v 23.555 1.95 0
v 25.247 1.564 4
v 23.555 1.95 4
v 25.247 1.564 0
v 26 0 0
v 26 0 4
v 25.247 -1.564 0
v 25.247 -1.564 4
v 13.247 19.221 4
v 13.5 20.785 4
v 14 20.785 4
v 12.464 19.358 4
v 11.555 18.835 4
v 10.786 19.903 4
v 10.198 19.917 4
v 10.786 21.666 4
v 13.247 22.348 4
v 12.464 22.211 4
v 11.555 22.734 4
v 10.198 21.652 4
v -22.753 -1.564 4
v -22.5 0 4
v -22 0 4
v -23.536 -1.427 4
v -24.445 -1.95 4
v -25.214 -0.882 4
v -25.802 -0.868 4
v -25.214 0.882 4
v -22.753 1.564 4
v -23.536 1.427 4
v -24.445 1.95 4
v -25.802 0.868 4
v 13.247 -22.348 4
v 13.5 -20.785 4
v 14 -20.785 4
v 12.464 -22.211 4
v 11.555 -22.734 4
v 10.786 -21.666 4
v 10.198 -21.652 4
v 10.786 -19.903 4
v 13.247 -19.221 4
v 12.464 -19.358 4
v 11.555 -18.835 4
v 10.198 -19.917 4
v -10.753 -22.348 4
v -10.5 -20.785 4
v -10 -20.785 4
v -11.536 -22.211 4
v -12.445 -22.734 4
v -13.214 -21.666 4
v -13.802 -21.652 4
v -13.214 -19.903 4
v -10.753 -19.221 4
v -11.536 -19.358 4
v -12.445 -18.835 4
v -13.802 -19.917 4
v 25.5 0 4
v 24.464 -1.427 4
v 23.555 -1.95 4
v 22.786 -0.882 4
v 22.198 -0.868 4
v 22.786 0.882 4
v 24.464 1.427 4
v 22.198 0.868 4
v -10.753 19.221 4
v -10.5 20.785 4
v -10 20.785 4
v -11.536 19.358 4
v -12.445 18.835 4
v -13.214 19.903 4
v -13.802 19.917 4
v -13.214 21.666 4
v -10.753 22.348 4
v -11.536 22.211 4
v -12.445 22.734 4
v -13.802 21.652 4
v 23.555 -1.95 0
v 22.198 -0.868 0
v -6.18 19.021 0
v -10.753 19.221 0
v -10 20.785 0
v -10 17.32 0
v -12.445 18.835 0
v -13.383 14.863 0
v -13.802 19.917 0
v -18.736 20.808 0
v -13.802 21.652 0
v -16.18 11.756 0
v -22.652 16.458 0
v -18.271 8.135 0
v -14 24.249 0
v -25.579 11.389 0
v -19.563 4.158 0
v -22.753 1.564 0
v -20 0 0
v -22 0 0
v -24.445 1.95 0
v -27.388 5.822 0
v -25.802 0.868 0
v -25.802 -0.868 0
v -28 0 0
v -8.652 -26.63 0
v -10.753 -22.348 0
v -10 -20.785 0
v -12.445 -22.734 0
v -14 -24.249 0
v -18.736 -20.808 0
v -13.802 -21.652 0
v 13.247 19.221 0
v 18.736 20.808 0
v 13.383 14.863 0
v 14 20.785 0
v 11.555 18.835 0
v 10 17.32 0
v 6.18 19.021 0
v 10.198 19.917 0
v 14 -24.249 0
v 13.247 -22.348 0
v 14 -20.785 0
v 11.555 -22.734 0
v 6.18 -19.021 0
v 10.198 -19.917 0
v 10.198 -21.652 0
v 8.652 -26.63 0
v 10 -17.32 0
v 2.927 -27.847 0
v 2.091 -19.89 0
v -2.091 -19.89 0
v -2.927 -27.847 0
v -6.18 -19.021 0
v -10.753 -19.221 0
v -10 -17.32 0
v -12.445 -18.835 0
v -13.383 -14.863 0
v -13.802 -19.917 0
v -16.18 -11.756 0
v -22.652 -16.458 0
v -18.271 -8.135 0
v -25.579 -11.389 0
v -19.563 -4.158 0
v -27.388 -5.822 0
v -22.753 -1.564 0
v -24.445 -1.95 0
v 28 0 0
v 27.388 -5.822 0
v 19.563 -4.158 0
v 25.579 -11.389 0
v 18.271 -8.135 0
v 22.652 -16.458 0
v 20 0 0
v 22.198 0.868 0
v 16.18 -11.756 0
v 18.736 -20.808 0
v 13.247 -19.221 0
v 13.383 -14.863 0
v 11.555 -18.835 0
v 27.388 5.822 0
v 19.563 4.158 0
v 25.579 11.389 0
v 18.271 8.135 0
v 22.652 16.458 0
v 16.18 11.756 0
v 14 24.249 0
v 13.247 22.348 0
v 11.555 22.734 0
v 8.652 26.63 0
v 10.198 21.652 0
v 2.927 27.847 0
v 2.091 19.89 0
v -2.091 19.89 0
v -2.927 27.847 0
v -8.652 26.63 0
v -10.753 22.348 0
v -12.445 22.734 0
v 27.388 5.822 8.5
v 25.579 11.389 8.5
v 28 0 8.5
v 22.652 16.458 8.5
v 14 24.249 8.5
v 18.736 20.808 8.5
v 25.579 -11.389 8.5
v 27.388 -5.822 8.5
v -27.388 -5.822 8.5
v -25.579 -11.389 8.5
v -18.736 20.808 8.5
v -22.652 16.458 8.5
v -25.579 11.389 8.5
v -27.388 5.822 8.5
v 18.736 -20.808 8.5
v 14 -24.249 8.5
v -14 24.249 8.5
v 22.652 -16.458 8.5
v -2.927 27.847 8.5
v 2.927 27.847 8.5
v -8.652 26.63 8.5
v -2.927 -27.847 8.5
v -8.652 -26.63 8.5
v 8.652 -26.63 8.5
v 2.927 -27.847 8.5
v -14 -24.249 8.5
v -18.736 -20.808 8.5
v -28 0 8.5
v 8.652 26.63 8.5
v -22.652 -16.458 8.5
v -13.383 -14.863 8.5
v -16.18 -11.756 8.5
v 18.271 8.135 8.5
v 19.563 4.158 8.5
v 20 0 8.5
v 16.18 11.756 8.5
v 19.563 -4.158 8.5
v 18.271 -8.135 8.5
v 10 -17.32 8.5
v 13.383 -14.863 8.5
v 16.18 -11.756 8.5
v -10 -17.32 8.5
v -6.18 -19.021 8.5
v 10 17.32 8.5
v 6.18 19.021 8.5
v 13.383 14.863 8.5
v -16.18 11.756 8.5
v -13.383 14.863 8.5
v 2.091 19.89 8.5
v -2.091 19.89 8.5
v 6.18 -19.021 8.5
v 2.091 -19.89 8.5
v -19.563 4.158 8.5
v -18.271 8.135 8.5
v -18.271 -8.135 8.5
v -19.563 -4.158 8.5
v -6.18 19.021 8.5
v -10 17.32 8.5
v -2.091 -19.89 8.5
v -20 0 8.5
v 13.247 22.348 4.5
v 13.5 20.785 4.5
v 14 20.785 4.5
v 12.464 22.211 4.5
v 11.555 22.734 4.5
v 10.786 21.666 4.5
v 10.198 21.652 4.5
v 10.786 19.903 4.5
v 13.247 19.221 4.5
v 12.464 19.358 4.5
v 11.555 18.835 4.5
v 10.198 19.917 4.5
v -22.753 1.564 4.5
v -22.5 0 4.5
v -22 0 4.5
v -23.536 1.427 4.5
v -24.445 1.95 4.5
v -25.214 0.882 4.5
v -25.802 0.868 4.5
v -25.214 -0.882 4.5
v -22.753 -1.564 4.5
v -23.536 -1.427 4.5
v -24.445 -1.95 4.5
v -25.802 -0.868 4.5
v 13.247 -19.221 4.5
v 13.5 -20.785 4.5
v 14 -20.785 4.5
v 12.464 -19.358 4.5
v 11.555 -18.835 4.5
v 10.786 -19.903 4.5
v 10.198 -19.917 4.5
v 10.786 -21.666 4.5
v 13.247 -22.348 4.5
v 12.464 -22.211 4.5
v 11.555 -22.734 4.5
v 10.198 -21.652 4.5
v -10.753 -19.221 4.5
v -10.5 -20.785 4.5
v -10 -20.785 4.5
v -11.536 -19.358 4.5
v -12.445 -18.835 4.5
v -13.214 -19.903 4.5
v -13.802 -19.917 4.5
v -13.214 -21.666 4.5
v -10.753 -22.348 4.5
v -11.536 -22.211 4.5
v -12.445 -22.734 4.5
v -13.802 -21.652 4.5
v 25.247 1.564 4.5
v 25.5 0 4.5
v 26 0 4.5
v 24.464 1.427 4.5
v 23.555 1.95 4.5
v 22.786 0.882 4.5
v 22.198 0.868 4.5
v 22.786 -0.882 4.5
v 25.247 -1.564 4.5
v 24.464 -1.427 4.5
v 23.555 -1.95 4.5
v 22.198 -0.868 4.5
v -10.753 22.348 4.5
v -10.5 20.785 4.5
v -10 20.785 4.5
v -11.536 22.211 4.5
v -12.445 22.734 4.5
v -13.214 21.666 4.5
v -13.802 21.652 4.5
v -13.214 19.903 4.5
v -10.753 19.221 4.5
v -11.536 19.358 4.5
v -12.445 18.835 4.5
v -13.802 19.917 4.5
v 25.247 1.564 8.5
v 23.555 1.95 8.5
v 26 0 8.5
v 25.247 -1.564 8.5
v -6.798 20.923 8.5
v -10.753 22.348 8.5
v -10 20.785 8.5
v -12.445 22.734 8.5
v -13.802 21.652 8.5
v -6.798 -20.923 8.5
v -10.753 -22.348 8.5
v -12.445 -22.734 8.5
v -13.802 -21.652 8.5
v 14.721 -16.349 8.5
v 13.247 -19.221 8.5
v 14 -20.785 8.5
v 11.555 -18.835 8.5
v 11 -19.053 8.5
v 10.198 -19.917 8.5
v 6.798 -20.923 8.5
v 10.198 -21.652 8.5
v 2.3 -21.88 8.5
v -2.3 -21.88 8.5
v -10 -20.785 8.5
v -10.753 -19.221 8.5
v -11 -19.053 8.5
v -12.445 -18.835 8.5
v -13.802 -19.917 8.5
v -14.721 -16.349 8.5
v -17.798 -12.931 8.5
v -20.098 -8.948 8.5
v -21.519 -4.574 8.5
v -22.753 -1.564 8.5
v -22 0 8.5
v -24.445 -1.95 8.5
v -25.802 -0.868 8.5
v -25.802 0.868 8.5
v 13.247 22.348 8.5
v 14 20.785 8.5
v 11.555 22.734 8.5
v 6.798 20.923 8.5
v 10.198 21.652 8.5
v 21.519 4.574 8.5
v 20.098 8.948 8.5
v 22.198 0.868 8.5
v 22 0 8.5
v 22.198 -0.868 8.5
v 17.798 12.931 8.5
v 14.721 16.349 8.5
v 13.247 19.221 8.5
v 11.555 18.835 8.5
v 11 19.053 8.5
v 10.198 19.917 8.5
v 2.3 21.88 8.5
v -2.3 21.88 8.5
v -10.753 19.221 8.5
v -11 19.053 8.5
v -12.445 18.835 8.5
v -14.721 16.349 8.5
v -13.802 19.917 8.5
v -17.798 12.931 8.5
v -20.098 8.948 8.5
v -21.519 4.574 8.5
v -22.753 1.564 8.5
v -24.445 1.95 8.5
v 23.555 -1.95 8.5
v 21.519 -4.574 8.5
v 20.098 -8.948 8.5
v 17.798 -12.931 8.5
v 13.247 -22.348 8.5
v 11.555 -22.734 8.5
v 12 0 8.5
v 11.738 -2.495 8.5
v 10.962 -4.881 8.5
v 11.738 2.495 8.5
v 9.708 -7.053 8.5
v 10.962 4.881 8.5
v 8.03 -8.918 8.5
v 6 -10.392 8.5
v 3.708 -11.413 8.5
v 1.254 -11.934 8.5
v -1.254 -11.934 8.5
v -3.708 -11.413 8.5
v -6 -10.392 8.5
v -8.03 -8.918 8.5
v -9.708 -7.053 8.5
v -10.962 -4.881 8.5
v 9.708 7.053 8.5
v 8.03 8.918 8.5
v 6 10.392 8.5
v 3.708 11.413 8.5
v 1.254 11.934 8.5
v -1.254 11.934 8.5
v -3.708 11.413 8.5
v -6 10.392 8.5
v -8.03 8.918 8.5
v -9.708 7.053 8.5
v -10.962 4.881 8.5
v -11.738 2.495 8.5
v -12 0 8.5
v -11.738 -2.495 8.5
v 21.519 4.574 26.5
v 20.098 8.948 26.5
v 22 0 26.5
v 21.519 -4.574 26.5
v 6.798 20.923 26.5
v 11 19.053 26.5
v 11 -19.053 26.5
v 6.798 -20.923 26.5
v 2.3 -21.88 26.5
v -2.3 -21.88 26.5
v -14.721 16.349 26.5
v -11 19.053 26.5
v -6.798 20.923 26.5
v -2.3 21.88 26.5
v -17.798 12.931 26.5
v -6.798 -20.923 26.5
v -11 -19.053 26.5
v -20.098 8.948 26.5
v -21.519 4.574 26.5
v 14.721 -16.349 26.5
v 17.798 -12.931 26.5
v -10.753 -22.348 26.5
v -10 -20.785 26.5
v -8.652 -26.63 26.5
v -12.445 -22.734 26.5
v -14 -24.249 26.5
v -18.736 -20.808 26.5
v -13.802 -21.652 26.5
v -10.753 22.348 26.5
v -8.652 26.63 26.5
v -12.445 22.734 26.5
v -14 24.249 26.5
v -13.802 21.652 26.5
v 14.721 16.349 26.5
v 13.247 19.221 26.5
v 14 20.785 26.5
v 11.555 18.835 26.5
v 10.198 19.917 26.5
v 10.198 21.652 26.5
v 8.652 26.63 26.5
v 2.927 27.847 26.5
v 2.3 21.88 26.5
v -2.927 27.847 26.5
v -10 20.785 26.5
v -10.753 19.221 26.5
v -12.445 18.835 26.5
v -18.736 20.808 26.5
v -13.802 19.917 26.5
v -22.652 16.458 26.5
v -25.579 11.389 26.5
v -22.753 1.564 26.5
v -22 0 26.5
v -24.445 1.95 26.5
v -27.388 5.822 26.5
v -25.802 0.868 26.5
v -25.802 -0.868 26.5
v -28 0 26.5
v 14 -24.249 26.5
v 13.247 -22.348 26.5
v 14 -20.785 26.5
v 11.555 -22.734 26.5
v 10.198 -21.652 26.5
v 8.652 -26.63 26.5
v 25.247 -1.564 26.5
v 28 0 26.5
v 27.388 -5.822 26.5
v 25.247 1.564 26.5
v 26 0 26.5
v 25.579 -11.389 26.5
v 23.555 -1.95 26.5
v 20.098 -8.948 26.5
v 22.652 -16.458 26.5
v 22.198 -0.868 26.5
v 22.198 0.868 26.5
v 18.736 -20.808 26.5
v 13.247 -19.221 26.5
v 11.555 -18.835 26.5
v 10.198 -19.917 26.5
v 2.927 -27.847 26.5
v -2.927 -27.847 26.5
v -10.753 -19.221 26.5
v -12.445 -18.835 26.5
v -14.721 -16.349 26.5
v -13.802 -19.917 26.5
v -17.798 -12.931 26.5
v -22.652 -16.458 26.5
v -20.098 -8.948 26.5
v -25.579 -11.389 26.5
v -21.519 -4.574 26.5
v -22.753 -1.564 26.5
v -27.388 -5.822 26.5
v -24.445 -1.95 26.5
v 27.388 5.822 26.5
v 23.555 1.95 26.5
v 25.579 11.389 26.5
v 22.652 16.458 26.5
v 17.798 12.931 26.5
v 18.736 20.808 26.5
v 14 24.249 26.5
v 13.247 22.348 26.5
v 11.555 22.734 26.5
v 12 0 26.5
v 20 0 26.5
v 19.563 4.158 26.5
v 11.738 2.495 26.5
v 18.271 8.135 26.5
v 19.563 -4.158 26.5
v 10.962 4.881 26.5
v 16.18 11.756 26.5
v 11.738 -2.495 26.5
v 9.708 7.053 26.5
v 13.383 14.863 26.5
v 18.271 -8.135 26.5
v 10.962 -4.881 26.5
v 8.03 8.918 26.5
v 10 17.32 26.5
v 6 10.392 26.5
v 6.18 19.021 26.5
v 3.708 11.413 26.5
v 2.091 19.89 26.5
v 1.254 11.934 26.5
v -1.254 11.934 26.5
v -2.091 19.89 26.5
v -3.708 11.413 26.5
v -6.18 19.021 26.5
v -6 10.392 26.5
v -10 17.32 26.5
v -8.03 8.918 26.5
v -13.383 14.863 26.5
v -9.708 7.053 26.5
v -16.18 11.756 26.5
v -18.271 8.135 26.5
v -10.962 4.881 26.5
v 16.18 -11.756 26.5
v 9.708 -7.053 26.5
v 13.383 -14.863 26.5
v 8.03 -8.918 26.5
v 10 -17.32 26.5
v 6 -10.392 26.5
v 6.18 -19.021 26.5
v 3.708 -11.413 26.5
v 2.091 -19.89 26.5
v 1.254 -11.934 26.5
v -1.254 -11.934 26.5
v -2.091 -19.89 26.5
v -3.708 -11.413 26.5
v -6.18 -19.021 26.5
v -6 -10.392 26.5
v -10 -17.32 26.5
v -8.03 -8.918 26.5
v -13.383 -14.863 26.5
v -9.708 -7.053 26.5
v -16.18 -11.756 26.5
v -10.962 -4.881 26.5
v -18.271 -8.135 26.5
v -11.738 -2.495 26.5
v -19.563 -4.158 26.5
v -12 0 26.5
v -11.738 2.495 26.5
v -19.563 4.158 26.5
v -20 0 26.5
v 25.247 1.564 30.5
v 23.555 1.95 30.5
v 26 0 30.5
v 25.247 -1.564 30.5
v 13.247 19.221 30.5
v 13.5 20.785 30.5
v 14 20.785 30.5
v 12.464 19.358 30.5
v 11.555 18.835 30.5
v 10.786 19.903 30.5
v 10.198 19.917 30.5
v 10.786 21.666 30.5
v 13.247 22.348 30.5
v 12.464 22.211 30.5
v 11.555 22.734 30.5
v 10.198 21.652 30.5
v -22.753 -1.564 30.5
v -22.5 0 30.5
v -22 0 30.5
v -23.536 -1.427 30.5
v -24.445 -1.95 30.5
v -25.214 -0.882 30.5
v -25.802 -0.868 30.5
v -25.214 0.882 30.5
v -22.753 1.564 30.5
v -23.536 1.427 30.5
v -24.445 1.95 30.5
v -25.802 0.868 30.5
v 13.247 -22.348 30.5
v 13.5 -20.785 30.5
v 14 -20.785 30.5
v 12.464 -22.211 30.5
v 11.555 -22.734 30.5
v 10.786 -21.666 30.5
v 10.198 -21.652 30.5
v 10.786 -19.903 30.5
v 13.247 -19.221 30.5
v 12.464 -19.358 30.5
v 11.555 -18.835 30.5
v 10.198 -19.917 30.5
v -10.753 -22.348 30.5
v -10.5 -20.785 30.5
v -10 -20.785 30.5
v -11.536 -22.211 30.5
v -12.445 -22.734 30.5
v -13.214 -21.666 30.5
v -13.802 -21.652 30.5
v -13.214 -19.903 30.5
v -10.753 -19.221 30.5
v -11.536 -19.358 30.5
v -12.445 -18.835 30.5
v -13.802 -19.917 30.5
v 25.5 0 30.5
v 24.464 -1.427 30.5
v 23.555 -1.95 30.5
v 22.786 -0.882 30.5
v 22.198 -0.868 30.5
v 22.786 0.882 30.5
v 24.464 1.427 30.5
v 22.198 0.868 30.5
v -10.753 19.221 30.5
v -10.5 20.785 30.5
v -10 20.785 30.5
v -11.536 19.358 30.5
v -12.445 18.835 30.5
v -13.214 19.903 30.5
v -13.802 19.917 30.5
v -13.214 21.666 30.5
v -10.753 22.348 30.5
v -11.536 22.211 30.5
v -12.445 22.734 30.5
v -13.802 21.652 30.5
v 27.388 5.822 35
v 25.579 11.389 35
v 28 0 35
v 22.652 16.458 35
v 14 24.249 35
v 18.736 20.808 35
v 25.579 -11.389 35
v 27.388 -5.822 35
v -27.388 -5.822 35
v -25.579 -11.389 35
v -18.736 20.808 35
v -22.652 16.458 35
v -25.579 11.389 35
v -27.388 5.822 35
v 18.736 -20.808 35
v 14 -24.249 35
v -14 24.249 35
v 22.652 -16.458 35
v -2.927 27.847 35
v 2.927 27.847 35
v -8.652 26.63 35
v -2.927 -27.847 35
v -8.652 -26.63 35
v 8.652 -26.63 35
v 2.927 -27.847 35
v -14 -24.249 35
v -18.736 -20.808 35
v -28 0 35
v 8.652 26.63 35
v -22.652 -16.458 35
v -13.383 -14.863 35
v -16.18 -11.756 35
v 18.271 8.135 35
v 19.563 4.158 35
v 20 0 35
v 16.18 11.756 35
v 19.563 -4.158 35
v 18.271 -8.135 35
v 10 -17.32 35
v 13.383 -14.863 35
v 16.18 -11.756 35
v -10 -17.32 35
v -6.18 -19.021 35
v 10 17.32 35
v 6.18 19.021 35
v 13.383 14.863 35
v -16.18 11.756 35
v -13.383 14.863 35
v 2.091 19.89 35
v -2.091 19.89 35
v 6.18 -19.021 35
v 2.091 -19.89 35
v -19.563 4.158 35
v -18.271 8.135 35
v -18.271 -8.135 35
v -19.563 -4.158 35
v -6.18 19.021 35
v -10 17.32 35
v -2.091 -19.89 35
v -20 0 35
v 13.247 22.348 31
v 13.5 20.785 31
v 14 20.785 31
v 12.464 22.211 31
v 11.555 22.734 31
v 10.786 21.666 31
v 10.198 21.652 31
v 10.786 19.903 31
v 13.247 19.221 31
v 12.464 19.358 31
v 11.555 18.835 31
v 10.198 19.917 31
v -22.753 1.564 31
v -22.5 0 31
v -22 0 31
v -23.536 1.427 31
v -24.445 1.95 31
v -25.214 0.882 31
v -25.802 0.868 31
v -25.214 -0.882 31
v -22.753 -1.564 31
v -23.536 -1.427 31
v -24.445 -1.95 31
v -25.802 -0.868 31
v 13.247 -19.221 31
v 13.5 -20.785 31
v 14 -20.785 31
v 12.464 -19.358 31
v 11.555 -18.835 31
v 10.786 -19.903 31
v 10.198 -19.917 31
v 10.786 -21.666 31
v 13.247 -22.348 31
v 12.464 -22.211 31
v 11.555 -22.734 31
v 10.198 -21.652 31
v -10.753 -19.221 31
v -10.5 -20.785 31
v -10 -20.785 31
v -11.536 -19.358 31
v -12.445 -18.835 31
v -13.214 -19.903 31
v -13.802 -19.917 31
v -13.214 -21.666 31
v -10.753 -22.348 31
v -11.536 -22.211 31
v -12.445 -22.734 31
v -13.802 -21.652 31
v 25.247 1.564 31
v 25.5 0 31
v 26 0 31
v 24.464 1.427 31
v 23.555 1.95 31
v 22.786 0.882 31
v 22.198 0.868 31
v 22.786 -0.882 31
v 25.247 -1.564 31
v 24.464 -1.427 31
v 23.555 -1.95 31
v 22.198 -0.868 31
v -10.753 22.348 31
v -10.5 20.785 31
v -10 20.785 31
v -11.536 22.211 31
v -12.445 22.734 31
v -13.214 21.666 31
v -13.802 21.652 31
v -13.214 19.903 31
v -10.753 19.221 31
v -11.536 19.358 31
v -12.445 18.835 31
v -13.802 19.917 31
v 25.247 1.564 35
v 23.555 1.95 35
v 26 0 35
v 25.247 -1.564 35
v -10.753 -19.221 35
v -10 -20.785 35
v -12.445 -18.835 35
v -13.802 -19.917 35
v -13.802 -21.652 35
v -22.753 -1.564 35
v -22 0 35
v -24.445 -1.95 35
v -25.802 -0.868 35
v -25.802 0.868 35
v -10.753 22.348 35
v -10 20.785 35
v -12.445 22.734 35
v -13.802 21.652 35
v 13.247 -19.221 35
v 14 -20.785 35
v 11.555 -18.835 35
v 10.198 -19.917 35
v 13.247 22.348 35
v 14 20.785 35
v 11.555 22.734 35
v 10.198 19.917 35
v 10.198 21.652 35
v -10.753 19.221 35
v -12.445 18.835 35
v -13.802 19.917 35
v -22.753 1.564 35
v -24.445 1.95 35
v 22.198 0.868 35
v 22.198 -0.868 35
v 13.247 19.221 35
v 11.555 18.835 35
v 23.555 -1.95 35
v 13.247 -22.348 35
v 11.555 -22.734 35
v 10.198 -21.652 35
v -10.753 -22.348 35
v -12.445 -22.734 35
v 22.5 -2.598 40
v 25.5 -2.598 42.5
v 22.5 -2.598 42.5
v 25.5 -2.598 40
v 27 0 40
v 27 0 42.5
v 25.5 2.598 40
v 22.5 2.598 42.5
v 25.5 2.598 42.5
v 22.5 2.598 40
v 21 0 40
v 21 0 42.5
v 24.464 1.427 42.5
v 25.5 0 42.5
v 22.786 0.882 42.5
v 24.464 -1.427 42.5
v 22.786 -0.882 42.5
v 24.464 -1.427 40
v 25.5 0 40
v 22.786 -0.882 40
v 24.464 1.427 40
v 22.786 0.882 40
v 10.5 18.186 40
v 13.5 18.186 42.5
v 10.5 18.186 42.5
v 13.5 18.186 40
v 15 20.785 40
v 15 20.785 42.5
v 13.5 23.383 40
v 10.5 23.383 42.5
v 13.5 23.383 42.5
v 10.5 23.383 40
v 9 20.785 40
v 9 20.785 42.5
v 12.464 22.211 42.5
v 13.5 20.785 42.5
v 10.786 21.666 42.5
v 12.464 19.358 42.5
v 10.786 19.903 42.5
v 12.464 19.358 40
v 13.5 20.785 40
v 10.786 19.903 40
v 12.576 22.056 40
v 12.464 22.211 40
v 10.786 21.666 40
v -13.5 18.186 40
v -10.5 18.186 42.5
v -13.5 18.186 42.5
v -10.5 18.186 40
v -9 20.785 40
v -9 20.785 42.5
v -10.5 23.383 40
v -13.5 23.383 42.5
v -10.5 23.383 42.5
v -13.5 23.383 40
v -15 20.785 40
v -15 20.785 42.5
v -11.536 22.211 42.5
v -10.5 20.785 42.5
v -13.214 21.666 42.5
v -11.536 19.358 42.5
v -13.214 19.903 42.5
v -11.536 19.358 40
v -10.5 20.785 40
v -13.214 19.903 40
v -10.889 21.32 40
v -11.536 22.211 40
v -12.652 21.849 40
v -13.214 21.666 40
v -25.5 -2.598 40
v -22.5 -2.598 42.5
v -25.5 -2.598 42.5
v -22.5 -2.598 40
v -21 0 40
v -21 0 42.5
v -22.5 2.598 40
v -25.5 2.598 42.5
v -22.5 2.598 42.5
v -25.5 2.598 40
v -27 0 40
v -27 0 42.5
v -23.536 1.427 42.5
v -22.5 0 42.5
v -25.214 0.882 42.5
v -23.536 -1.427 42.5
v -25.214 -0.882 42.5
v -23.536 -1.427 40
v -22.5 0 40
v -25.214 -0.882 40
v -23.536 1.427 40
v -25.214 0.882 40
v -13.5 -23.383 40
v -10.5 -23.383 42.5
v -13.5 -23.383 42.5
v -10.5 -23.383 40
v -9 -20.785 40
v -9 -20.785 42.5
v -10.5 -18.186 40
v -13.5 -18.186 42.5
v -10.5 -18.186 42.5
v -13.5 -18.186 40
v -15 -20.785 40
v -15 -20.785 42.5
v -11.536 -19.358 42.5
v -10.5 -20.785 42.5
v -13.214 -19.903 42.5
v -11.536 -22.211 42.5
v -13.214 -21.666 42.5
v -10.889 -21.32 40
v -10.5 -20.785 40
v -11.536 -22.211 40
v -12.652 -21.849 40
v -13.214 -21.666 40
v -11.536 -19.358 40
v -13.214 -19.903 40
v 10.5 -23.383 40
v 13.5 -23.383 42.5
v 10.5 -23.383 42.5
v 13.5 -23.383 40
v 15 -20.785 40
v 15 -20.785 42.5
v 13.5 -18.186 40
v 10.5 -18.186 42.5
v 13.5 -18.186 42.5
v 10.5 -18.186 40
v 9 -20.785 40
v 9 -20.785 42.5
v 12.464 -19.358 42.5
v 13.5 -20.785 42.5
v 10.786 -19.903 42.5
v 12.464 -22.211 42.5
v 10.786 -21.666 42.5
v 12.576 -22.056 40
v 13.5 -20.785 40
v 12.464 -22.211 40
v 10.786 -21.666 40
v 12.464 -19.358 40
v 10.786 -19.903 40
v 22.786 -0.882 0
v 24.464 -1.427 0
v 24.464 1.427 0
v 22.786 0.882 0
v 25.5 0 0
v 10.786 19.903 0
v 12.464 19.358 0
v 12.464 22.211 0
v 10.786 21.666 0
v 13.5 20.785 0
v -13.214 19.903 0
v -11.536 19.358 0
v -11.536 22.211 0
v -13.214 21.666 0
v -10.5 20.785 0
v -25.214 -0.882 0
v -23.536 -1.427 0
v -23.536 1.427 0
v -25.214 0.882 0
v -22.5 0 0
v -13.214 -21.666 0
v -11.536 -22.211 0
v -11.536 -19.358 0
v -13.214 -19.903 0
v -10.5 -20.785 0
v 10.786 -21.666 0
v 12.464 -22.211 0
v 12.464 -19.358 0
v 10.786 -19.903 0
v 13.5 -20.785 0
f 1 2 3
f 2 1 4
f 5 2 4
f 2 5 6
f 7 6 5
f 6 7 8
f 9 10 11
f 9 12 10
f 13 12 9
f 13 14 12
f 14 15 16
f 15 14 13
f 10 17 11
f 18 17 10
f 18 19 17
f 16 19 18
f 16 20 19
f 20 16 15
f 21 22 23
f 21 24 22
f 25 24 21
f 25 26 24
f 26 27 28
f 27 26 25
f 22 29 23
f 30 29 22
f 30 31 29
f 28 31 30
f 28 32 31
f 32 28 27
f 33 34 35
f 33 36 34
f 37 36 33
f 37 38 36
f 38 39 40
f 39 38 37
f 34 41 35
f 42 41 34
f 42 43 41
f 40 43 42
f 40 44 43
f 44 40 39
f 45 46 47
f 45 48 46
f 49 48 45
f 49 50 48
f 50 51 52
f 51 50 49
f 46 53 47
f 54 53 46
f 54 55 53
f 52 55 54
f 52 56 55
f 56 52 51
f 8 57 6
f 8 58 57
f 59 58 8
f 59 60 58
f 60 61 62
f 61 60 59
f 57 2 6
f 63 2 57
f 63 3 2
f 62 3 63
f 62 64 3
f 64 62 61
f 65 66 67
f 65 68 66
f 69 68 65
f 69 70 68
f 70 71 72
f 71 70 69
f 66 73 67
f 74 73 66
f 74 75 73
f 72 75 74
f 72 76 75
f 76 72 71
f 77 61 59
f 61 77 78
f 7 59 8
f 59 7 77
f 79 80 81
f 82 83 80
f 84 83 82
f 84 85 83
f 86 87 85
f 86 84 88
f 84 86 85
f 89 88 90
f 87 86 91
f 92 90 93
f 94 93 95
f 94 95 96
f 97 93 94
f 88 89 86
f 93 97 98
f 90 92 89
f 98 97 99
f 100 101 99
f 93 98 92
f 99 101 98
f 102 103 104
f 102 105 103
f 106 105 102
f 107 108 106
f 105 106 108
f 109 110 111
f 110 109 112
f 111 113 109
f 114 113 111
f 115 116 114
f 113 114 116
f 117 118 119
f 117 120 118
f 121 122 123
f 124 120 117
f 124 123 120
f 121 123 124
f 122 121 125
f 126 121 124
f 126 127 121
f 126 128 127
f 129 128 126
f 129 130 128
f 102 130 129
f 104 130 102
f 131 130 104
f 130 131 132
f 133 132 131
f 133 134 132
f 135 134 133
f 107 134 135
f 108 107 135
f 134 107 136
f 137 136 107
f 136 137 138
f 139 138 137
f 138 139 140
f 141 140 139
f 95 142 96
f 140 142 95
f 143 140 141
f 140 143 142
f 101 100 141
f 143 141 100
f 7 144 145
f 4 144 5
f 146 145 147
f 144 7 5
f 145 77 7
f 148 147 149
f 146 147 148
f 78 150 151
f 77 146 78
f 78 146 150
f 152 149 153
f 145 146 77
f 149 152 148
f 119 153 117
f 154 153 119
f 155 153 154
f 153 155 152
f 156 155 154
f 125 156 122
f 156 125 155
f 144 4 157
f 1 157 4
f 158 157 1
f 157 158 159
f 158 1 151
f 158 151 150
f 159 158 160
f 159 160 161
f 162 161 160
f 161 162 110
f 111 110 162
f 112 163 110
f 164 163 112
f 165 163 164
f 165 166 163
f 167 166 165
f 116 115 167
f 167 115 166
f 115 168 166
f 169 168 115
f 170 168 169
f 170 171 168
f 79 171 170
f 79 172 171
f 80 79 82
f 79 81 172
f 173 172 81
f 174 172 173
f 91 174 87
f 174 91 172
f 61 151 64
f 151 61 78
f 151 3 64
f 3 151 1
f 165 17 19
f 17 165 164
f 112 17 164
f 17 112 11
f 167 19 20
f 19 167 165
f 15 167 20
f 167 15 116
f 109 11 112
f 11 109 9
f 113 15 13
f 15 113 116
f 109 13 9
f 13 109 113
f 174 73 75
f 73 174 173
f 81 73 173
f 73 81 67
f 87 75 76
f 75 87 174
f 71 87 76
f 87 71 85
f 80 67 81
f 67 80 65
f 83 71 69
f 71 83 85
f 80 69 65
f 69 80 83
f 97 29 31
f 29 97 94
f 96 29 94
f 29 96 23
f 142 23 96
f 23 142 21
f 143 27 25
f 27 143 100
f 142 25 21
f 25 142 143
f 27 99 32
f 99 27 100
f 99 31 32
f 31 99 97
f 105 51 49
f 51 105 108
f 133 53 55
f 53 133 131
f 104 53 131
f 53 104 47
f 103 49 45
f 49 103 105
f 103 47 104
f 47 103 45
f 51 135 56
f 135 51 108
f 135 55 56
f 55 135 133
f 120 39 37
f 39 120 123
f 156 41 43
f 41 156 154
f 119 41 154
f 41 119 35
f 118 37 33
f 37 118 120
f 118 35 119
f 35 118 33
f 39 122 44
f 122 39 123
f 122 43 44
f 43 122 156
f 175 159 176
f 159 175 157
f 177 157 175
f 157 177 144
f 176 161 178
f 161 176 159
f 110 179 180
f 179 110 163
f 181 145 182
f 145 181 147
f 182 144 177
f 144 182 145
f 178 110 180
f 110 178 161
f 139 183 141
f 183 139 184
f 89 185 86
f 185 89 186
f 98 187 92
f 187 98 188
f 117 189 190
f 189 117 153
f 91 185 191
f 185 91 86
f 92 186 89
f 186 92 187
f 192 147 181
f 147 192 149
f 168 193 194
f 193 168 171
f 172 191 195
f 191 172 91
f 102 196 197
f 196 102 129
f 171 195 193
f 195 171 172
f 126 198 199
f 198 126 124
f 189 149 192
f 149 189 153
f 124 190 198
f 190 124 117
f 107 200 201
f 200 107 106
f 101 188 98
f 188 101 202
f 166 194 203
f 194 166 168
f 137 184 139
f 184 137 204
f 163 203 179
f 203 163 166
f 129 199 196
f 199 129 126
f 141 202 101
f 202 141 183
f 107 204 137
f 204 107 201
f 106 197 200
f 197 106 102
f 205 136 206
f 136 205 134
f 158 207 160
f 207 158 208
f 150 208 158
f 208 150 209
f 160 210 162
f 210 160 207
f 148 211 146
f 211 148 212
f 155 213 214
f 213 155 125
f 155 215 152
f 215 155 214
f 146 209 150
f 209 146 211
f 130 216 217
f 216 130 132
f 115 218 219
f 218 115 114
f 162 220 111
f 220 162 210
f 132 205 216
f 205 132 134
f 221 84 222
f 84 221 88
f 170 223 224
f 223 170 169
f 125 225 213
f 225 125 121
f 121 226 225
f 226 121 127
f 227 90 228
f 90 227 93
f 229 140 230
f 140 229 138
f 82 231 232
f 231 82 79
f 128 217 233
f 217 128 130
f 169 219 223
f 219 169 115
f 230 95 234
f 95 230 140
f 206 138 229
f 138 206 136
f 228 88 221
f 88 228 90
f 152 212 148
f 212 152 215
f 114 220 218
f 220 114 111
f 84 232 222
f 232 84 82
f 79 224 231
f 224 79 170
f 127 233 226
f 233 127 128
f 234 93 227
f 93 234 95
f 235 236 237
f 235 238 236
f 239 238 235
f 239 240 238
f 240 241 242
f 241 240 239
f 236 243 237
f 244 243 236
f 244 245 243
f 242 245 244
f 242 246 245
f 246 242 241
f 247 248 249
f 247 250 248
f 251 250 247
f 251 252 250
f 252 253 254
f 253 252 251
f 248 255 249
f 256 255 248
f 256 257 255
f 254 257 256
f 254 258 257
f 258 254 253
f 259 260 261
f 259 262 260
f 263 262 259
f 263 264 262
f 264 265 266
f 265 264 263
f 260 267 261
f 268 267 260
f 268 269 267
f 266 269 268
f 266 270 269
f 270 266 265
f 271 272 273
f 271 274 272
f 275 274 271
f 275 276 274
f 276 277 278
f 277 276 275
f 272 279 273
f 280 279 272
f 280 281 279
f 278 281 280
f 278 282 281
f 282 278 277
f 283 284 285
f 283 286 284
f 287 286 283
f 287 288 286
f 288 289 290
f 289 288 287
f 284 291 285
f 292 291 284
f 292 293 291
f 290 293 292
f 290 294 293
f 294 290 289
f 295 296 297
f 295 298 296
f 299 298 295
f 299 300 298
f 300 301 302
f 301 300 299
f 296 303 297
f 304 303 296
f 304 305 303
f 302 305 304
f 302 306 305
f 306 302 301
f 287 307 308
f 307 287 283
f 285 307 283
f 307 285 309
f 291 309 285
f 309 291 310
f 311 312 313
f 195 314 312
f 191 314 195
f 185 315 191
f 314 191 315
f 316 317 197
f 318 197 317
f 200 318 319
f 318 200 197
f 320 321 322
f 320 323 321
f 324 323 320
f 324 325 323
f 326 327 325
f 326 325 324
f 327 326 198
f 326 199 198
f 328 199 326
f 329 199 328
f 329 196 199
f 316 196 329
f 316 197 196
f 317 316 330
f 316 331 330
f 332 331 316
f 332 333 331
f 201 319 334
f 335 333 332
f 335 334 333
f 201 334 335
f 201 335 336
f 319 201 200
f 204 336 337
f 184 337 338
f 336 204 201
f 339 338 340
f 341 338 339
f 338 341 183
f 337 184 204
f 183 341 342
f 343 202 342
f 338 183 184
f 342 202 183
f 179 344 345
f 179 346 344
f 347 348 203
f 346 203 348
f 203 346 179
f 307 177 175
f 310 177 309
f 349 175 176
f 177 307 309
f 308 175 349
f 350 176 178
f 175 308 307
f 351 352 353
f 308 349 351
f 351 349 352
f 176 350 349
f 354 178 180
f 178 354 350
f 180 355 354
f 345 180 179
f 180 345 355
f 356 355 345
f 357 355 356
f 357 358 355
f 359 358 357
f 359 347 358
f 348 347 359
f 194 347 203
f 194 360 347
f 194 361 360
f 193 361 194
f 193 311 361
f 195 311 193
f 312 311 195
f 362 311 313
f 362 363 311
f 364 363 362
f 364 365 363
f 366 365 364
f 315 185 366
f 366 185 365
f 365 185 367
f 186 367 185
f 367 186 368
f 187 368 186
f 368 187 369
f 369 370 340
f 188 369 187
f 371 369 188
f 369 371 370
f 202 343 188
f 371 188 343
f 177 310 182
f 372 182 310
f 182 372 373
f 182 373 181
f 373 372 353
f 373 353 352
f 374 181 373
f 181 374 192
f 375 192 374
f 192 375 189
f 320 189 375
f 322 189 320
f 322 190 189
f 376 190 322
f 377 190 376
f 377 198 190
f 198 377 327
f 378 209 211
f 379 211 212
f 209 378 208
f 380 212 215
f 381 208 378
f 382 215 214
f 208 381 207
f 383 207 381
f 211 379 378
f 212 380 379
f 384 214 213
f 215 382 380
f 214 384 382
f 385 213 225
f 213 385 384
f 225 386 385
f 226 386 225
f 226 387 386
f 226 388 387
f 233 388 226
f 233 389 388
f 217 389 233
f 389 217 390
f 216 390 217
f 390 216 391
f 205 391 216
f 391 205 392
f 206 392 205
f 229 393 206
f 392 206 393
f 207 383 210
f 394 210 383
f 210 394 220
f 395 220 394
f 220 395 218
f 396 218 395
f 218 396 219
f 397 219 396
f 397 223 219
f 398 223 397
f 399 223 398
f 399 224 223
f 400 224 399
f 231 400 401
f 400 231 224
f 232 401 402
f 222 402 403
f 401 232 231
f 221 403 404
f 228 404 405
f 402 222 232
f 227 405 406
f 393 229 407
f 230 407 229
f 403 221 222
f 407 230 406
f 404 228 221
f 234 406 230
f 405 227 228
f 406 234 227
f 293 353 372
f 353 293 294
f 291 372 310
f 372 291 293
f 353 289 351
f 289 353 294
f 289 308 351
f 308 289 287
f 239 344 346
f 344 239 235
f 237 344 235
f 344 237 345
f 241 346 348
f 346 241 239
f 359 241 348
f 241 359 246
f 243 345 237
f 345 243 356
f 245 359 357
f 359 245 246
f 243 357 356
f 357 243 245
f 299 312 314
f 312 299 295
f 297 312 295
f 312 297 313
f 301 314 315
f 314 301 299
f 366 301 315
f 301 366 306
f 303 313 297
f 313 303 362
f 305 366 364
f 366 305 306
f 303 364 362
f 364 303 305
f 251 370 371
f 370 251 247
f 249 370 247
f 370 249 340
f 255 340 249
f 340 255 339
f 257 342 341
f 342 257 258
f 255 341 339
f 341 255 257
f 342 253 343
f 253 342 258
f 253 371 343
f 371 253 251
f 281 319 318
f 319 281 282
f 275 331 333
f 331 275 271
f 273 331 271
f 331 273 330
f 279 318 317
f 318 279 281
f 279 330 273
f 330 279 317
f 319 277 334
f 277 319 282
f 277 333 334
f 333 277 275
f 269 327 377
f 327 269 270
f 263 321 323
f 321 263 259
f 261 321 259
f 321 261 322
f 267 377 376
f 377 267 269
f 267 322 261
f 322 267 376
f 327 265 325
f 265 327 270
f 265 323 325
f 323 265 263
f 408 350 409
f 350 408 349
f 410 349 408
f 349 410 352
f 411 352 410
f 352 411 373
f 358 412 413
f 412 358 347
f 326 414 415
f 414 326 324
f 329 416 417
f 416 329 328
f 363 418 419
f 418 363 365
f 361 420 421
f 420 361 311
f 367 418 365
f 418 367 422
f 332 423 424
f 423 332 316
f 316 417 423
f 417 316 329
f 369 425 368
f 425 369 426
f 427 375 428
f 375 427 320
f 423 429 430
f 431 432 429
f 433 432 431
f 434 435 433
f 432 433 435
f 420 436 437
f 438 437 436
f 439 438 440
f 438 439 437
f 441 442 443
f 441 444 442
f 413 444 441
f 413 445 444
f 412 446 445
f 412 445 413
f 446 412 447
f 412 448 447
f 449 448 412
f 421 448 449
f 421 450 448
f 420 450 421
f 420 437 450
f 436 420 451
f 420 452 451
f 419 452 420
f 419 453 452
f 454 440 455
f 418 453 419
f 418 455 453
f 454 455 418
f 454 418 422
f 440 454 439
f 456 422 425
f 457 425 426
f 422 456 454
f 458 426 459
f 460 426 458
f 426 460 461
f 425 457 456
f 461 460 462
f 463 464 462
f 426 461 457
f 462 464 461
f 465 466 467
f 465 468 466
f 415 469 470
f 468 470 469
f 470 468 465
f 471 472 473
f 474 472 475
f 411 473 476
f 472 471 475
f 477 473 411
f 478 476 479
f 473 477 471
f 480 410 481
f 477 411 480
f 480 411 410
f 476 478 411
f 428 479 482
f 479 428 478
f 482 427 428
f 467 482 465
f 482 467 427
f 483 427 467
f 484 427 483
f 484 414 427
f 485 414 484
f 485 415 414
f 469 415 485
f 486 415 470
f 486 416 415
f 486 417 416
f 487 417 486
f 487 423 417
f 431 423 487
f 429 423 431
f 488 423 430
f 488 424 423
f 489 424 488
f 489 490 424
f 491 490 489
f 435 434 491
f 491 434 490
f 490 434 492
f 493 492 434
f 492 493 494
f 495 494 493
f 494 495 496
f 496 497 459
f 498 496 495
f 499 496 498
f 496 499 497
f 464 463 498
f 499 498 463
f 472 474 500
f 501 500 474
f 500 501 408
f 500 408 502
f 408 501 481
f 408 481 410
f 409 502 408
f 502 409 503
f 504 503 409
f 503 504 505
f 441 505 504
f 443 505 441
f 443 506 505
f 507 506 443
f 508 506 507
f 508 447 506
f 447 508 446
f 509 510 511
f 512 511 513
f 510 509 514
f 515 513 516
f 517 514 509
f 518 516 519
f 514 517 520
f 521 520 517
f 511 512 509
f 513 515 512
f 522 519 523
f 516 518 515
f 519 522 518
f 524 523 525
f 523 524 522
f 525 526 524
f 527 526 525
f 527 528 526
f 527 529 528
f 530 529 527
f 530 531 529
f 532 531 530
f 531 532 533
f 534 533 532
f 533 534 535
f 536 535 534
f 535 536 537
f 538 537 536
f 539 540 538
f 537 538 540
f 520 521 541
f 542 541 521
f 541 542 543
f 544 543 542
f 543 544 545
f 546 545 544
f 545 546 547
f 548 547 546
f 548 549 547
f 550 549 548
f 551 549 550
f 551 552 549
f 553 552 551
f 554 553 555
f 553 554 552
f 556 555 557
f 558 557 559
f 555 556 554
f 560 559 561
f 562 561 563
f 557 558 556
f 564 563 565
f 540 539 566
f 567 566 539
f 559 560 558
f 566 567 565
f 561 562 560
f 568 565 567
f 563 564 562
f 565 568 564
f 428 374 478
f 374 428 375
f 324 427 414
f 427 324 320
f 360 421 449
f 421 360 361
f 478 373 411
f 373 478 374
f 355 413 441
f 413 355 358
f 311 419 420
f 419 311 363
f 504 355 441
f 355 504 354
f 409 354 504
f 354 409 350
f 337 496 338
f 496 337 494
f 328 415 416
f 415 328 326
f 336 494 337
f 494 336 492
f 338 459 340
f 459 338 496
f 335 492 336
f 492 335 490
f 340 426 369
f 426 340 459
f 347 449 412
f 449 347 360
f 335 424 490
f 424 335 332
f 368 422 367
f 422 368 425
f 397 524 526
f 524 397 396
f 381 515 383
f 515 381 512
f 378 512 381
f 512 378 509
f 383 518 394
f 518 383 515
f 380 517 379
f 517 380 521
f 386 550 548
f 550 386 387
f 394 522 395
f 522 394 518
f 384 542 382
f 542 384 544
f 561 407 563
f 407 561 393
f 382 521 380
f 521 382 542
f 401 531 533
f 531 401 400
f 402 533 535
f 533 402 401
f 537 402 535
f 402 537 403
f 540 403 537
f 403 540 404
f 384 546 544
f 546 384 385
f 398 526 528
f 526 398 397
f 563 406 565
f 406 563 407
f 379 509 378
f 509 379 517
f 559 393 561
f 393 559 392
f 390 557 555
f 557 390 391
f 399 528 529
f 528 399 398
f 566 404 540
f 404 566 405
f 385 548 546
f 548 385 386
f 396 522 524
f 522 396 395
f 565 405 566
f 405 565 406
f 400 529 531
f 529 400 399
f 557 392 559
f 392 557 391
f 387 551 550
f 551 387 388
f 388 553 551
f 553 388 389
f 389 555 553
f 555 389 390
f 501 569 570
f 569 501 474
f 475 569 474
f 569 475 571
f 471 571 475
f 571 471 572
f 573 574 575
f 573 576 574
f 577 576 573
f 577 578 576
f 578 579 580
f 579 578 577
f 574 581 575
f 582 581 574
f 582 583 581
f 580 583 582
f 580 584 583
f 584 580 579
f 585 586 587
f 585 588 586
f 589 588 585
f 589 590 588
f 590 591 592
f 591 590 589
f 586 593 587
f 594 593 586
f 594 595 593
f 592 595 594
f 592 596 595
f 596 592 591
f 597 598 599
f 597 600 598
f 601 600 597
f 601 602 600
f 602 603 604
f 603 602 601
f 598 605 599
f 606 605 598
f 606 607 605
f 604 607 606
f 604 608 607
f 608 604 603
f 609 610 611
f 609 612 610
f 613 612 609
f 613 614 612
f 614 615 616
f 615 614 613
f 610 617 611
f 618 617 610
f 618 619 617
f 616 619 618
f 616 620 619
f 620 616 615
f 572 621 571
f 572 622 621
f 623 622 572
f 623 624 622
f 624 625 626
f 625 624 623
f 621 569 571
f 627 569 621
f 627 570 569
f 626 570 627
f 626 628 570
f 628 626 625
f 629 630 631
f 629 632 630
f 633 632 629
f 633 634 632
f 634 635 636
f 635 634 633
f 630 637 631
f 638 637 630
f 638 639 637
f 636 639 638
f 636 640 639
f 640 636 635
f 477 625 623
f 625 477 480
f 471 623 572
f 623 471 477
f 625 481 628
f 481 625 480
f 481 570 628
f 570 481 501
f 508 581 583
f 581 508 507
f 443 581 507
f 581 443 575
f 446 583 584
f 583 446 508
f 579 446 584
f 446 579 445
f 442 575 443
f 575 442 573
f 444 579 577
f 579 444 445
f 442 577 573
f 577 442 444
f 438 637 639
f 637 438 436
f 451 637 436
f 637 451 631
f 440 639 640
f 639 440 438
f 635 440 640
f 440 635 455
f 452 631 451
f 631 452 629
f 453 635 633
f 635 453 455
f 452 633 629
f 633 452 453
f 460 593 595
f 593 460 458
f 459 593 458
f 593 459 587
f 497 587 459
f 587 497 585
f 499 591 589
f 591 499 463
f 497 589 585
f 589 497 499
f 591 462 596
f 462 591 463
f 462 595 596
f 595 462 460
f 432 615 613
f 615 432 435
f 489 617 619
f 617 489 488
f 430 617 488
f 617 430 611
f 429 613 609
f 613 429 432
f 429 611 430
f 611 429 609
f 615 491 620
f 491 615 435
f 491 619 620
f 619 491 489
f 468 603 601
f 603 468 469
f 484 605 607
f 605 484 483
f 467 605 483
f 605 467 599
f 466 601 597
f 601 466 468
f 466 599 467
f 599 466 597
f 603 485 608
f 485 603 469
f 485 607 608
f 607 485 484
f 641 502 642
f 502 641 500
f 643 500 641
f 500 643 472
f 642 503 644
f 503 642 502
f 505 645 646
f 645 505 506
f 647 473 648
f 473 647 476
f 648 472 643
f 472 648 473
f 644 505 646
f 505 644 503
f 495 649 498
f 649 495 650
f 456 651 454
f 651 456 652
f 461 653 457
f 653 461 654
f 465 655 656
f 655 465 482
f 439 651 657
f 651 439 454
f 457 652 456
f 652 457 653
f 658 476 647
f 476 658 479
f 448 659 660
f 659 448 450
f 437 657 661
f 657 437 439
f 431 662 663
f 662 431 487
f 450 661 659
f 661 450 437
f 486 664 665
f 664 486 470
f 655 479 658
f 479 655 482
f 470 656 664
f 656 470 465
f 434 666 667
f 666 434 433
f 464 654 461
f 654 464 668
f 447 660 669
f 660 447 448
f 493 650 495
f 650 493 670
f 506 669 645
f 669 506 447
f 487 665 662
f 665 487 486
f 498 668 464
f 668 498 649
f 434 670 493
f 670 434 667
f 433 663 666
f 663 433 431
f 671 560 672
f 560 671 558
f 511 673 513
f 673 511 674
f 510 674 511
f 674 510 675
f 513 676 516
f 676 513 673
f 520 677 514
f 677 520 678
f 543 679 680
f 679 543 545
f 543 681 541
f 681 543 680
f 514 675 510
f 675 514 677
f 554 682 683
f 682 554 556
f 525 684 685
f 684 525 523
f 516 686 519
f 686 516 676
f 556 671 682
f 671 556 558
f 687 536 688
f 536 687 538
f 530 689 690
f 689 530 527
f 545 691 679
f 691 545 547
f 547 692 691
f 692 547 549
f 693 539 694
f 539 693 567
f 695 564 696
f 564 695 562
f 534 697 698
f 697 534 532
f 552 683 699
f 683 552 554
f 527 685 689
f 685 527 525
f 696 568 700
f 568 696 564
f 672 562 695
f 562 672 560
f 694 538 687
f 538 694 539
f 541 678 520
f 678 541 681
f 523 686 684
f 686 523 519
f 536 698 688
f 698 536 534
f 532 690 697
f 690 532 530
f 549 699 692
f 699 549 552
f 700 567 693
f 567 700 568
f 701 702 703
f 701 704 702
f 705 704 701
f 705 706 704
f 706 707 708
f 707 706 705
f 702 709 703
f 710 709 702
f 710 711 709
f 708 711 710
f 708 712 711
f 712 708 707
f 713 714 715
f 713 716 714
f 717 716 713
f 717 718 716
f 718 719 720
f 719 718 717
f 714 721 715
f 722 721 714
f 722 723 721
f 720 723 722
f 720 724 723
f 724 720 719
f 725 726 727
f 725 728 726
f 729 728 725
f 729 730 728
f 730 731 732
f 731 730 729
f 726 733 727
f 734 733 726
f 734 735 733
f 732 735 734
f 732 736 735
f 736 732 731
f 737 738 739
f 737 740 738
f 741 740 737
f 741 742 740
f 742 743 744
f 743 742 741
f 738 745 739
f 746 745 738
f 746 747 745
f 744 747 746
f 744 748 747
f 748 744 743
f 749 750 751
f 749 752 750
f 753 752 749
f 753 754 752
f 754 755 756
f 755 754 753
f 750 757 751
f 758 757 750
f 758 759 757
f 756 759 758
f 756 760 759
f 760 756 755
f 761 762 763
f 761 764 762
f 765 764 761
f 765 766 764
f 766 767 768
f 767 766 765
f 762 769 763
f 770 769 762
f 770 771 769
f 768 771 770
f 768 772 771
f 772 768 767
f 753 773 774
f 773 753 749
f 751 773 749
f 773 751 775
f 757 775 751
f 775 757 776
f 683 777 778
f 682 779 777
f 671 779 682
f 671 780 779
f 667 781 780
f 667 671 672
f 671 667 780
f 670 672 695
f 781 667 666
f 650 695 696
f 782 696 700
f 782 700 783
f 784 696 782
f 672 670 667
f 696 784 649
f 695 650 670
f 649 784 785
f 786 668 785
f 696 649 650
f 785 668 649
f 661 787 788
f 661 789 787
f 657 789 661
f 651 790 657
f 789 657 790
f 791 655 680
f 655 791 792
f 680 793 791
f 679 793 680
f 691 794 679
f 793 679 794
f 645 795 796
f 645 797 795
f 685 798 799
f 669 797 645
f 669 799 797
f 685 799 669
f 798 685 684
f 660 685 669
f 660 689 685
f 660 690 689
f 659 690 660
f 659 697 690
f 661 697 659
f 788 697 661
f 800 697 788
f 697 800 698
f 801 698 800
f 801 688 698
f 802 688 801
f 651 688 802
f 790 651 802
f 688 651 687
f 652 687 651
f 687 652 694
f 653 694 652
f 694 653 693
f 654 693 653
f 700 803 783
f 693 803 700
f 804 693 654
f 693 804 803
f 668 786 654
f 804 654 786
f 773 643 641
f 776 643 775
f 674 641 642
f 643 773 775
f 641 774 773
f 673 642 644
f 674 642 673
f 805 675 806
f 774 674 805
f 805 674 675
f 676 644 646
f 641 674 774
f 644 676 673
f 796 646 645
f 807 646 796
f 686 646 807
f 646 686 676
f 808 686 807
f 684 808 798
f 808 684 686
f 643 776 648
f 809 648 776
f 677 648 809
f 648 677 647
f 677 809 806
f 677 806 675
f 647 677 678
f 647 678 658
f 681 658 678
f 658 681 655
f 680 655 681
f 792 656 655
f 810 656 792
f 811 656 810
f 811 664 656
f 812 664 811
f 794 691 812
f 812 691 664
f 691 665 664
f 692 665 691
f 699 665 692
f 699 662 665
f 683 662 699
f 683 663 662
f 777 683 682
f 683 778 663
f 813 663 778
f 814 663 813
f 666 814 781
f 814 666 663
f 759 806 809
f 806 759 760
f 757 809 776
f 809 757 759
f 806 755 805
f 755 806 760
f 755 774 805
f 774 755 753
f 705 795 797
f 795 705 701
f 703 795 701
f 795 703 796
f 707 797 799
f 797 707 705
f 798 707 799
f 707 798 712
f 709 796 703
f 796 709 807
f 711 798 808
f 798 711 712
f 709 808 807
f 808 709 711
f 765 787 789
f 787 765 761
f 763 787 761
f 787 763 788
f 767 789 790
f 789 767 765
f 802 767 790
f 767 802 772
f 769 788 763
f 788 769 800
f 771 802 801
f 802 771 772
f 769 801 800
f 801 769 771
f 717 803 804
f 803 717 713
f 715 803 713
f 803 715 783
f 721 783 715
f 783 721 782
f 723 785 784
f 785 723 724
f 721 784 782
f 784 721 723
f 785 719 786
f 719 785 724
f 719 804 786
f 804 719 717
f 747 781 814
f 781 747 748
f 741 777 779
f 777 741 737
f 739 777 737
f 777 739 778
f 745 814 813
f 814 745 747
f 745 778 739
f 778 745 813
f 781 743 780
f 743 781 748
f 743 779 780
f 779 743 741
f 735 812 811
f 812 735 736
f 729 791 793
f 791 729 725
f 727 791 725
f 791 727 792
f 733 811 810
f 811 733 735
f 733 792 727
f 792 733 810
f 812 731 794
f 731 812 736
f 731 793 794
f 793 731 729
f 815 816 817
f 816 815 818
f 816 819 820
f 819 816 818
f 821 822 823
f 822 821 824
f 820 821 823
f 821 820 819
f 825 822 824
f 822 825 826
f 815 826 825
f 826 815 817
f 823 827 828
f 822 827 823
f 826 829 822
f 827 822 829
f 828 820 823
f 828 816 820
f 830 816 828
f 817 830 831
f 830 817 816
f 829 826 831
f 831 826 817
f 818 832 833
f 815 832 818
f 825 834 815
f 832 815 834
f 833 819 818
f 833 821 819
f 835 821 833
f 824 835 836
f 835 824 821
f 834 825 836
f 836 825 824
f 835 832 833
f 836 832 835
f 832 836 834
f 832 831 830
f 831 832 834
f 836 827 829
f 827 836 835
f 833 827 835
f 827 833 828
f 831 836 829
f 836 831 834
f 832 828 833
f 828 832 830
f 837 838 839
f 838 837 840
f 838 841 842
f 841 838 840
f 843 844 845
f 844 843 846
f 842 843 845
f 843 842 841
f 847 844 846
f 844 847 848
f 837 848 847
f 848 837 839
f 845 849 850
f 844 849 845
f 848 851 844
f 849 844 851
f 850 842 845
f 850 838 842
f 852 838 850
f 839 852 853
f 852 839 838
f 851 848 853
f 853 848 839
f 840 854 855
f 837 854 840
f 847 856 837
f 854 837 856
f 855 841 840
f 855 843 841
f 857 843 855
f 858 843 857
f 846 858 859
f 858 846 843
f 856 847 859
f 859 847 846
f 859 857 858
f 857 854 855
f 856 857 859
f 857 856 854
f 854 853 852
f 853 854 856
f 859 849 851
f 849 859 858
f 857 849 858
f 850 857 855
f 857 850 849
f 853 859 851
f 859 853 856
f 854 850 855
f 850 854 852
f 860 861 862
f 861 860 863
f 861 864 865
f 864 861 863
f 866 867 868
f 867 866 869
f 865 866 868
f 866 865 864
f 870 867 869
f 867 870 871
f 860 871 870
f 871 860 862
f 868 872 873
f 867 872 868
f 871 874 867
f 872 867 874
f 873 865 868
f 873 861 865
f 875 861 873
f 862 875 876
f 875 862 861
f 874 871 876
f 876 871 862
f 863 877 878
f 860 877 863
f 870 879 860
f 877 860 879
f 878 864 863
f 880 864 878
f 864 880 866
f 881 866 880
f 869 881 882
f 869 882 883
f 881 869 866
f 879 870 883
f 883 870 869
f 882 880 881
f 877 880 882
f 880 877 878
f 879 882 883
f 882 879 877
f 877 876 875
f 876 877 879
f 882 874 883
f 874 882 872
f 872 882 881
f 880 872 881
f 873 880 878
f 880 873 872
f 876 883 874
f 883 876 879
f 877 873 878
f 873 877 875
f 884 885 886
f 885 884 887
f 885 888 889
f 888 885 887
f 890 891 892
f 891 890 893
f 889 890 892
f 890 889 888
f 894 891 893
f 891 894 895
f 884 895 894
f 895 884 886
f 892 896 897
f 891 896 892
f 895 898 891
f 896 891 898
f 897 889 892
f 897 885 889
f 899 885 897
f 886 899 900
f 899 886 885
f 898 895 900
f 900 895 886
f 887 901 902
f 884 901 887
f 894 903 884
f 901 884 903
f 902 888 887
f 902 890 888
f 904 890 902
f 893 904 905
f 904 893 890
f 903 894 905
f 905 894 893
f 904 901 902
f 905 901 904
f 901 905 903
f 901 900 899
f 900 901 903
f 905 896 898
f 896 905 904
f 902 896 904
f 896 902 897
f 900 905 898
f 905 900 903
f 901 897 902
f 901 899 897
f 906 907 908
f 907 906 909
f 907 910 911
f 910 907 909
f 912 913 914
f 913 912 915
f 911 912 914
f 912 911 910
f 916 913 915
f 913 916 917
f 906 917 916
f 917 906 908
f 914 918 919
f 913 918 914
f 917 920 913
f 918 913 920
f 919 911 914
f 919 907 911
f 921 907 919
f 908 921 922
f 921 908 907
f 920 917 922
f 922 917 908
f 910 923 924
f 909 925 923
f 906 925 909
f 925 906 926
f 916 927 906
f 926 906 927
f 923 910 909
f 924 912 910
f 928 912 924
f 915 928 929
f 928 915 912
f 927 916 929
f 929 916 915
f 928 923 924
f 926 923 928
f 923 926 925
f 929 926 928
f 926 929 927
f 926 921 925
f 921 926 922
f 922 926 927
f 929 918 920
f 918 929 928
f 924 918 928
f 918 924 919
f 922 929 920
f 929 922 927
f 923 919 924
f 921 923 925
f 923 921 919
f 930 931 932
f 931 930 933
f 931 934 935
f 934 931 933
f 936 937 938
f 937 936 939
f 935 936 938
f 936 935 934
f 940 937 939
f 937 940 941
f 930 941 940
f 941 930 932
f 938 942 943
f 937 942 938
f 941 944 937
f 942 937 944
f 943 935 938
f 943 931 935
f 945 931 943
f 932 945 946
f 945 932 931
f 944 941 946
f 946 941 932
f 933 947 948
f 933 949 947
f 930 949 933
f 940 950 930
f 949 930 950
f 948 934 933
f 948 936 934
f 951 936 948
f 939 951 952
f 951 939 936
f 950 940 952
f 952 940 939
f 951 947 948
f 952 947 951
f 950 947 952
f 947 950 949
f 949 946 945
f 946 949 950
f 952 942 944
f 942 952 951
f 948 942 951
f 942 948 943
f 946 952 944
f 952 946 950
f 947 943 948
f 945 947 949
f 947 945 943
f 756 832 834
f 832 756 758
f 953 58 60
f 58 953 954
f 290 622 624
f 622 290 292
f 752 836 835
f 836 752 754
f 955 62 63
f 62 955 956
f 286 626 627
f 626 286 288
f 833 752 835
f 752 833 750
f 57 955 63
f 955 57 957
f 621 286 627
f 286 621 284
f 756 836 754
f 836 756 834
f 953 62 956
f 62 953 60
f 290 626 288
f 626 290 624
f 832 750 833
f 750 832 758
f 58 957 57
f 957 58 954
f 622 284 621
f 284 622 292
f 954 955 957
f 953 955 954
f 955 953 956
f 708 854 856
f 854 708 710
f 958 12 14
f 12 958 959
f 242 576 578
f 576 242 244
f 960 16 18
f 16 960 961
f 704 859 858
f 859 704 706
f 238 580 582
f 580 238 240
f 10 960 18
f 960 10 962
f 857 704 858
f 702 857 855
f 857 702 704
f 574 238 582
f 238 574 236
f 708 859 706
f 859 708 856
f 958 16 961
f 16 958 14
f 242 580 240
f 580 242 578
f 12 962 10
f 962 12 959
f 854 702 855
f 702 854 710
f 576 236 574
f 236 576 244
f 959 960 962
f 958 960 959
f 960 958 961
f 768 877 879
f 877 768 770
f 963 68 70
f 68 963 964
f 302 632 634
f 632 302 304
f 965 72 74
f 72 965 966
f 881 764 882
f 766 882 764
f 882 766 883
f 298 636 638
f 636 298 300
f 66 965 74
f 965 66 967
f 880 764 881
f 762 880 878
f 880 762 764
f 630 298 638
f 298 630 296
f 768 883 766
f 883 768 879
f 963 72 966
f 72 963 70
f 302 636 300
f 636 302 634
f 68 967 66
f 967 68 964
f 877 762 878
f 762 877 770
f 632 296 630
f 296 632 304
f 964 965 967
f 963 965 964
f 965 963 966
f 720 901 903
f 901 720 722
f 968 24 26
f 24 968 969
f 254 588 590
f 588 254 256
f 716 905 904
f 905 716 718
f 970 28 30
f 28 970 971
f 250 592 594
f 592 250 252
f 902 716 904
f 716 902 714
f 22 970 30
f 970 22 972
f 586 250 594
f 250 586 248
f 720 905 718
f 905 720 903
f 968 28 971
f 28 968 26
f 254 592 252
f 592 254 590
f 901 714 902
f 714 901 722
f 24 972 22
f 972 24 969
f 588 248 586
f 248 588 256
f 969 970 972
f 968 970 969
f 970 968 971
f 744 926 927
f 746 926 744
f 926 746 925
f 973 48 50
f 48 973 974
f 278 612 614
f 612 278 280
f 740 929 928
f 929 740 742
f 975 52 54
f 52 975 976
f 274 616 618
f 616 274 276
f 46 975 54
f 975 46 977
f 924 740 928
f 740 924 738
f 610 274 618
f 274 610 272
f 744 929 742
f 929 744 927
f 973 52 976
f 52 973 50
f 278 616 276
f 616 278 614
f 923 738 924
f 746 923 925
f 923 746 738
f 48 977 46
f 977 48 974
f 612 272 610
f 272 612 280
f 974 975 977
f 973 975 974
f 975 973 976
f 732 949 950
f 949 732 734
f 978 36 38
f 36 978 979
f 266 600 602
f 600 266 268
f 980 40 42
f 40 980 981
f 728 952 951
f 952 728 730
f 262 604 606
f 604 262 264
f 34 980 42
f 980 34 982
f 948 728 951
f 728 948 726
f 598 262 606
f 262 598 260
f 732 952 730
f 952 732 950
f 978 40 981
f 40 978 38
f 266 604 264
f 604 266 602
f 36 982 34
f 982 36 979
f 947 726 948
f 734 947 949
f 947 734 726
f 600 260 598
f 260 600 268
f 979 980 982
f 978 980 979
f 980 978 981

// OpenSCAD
// Parameters for components
module flange_plate() {
    difference() {
        cylinder(h=4, r=28); // Adjusted outer cylinder diameter and reduced thickness
        cylinder(h=4, r=20); // Inner hole remains the same
        for (i = [0:60:300]) { // Bolt holes evenly distributed
            translate([24*cos(i), 24*sin(i), 0]) // Adjusted bolt hole positions
                cylinder(h=4, r=2);
        }
    }
}

module spacer_ring() {
    difference() {
        cylinder(h=0.5, r=28); // Reduced thickness and adjusted outer diameter
        cylinder(h=0.5, r=20); // Inner hole remains the same
    }
}

module central_craft() {
    difference() {
        cylinder(h=18, r=22); // Reduced thickness of the cylindrical body
        cylinder(h=18, r=12); // Increased diameter of the central hole
    }
}

module bolt() {
    cylinder(h=40, r=1.5); // Increased bolt length
}

module nut() {
    difference() {
        cylinder(h=2.5, r=3, $fn=6); // Reduced size of the hexagonal cylinder
        cylinder(h=2.5, r=1.5); // Inner threading remains the same
    }
}

// Assembly
module flexible_coupling() {
    // Layer 1: Top flange plate
    translate([0, 0, 0])
        flange_plate();

    // Layer 2: Spacer ring
    translate([0, 0, 4])
        spacer_ring();

    // Layer 3: Second flange plate
    translate([0, 0, 4.5])
        flange_plate();

    // Layer 4: Central craft
    translate([0, 0, 8.5])
        central_craft();

    // Layer 5: Third flange plate
    translate([0, 0, 26.5])
        flange_plate();

    // Layer 6: Second spacer ring
    translate([0, 0, 30.5])
        spacer_ring();

    // Layer 7: Bottom flange plate
    translate([0, 0, 31])
        flange_plate();

    // Bolts and nuts
    for (i = [0:60:300]) {
        translate([24*cos(i), 24*sin(i), 0])
            bolt();
        translate([24*cos(i), 24*sin(i), 40])
            nut();
    }
}

// Render the flexible coupling
flexible_coupling();
